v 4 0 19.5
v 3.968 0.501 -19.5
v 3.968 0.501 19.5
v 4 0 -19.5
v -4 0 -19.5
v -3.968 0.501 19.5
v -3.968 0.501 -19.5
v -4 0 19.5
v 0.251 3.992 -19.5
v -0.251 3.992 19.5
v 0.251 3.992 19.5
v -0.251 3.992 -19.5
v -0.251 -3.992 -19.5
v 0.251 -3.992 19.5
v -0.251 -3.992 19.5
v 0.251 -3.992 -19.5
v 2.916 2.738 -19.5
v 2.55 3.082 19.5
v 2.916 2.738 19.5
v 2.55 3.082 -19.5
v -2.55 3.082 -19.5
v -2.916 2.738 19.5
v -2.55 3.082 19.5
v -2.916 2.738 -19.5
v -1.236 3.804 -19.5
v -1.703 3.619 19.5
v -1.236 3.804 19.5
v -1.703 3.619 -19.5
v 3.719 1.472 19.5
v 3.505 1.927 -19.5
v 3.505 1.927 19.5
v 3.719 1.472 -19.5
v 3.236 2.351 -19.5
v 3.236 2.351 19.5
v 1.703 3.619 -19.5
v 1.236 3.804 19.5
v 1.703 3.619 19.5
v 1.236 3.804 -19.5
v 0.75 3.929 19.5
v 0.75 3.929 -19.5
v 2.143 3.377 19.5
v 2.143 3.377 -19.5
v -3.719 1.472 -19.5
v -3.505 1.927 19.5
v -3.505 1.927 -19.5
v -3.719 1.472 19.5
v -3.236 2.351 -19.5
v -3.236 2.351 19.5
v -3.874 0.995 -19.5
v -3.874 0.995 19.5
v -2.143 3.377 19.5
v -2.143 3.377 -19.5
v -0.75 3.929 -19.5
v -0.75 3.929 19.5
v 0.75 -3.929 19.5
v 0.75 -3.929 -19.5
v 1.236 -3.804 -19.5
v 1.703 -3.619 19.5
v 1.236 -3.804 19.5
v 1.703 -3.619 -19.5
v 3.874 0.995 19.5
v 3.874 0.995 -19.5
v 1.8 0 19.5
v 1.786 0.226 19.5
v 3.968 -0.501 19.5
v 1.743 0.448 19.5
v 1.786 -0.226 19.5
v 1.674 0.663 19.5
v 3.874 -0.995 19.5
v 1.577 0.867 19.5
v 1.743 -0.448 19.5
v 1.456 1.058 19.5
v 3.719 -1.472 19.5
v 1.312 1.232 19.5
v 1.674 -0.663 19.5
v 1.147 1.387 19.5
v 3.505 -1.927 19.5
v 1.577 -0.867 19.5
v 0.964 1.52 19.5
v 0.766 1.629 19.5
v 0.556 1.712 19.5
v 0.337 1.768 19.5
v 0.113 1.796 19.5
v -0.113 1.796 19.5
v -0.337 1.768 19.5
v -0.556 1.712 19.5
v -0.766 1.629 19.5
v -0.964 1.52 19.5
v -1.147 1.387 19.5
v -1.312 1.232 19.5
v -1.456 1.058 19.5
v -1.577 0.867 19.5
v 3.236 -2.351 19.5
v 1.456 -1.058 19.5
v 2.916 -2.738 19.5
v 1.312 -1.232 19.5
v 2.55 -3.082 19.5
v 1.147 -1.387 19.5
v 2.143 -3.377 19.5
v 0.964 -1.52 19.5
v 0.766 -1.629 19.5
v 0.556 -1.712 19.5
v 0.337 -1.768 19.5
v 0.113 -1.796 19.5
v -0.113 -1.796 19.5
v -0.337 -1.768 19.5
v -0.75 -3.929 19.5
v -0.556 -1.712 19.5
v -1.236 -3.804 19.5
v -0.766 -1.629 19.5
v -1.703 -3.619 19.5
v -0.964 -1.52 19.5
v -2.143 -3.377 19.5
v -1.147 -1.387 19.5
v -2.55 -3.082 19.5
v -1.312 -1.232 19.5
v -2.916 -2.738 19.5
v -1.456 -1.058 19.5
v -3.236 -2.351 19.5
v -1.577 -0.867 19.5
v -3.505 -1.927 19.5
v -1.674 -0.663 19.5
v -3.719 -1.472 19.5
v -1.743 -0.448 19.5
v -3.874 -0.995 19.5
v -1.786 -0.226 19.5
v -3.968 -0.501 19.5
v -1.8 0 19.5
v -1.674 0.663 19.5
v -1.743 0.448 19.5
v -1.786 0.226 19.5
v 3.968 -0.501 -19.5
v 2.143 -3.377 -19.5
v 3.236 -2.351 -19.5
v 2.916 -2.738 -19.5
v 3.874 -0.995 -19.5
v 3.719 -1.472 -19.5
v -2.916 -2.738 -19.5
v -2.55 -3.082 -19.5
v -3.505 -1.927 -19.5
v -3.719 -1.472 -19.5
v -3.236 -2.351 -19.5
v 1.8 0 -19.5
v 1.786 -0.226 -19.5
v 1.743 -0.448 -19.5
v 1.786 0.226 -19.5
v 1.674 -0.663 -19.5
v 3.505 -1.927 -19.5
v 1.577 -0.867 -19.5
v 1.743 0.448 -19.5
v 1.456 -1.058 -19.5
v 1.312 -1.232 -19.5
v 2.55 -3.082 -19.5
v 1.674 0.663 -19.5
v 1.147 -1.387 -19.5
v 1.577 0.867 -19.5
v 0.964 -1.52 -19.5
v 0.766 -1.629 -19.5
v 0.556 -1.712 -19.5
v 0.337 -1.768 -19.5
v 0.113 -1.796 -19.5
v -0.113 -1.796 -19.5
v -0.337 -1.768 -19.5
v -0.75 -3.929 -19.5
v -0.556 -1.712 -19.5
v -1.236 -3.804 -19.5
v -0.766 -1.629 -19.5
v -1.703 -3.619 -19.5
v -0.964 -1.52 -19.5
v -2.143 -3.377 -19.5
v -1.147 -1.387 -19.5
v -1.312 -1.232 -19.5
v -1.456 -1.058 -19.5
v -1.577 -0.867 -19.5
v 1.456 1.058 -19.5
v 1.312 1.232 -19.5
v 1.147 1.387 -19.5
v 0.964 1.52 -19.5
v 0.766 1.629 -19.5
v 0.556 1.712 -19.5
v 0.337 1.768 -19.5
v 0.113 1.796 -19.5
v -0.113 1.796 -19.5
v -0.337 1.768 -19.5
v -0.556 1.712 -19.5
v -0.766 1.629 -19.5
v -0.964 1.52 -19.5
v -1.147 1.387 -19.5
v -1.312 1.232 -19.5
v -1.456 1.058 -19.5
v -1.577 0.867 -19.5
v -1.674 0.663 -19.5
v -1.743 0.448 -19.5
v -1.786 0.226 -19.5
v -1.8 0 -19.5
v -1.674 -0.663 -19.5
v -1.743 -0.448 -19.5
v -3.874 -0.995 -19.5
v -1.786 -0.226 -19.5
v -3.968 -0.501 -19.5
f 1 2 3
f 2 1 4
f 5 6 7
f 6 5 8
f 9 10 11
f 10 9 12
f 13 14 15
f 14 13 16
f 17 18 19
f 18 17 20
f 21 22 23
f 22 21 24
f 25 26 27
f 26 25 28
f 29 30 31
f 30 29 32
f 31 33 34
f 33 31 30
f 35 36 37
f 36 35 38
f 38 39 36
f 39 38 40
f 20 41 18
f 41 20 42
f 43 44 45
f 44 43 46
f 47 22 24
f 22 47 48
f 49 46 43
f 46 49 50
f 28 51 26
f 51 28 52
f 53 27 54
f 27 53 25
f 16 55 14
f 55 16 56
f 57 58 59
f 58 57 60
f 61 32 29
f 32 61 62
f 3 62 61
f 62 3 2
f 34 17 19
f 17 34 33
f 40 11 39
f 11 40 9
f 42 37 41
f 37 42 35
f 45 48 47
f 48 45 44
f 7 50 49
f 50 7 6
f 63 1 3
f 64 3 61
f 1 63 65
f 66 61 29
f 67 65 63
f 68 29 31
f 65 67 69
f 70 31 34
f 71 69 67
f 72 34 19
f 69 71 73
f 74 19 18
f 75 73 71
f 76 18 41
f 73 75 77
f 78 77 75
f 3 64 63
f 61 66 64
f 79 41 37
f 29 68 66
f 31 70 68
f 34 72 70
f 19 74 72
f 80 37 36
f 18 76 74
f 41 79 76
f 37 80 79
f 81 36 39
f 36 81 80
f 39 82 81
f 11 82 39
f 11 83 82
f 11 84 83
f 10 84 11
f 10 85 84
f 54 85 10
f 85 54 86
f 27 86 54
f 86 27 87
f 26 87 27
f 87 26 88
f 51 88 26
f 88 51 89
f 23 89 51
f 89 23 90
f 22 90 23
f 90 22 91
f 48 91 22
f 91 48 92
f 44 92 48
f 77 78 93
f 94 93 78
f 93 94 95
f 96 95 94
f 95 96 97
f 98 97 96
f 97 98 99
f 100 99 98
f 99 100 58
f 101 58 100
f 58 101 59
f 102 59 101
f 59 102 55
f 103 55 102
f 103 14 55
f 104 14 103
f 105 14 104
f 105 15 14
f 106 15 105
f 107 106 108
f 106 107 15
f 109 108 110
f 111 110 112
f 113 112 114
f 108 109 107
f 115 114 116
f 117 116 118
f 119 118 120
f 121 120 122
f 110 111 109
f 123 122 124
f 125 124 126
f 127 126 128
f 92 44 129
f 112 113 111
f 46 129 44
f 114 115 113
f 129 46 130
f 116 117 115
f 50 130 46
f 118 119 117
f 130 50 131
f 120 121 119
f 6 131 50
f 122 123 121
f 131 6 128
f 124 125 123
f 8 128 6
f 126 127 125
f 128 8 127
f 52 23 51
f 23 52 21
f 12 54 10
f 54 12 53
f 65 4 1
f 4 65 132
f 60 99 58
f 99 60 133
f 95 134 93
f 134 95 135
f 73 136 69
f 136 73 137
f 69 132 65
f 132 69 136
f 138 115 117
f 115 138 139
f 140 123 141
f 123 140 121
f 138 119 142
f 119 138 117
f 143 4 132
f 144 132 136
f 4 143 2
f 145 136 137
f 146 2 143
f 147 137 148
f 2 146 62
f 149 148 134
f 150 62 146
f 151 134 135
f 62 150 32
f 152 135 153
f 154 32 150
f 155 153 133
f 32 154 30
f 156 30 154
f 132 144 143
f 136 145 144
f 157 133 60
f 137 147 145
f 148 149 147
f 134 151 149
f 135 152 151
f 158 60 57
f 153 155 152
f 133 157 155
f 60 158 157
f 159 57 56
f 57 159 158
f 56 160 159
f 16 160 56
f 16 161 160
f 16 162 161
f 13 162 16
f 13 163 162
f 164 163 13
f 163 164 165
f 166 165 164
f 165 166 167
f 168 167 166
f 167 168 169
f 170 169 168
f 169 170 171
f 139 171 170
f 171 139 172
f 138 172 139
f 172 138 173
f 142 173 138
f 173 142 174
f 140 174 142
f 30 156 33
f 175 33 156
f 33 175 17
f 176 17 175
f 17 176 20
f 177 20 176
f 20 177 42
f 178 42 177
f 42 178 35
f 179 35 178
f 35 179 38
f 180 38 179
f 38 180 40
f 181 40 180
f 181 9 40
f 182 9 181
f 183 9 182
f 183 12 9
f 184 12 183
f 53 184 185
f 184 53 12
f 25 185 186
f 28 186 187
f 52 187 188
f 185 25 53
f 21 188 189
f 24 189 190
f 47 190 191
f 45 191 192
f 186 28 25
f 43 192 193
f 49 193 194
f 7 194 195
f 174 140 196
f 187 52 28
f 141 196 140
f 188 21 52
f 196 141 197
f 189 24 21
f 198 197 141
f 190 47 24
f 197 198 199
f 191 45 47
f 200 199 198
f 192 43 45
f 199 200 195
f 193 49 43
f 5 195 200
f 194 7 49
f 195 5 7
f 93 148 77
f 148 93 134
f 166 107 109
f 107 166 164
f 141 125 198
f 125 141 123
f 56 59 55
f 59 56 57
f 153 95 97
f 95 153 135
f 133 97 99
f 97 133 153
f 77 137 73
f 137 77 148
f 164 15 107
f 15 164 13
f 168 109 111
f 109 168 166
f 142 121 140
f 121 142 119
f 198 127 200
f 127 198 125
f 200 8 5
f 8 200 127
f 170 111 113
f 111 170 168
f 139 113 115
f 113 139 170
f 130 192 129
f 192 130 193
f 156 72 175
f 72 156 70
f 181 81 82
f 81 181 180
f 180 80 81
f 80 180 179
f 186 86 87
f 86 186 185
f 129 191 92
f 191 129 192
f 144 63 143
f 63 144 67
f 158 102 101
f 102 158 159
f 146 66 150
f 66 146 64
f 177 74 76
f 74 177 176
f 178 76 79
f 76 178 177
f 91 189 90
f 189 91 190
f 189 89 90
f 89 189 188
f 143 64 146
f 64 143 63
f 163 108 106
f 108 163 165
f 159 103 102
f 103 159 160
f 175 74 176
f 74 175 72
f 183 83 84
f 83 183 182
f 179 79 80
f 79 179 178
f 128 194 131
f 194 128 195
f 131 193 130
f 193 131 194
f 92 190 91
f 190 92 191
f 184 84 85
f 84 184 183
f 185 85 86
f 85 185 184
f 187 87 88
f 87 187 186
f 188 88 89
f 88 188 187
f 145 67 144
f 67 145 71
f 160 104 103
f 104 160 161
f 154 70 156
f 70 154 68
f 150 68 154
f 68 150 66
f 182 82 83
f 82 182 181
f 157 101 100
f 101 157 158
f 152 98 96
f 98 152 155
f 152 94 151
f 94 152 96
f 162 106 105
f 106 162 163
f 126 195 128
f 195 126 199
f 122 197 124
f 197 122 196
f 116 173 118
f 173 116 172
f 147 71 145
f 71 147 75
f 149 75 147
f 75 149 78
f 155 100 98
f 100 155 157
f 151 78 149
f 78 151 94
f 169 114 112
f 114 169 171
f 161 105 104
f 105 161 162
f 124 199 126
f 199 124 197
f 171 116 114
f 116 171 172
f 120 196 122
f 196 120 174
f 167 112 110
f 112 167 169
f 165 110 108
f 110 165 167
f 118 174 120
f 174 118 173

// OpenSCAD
$fn = 50;


difference() {
	union() {
		translate(v = [0, 0, -19.5000000000]) {
			cylinder(h = 39, r = 4.0000000000);
		}
	}
	union() {
		translate(v = [0, 0, -100.0000000000]) {
			cylinder(h = 200, r = 1.8000000000);
		}
	}
}
